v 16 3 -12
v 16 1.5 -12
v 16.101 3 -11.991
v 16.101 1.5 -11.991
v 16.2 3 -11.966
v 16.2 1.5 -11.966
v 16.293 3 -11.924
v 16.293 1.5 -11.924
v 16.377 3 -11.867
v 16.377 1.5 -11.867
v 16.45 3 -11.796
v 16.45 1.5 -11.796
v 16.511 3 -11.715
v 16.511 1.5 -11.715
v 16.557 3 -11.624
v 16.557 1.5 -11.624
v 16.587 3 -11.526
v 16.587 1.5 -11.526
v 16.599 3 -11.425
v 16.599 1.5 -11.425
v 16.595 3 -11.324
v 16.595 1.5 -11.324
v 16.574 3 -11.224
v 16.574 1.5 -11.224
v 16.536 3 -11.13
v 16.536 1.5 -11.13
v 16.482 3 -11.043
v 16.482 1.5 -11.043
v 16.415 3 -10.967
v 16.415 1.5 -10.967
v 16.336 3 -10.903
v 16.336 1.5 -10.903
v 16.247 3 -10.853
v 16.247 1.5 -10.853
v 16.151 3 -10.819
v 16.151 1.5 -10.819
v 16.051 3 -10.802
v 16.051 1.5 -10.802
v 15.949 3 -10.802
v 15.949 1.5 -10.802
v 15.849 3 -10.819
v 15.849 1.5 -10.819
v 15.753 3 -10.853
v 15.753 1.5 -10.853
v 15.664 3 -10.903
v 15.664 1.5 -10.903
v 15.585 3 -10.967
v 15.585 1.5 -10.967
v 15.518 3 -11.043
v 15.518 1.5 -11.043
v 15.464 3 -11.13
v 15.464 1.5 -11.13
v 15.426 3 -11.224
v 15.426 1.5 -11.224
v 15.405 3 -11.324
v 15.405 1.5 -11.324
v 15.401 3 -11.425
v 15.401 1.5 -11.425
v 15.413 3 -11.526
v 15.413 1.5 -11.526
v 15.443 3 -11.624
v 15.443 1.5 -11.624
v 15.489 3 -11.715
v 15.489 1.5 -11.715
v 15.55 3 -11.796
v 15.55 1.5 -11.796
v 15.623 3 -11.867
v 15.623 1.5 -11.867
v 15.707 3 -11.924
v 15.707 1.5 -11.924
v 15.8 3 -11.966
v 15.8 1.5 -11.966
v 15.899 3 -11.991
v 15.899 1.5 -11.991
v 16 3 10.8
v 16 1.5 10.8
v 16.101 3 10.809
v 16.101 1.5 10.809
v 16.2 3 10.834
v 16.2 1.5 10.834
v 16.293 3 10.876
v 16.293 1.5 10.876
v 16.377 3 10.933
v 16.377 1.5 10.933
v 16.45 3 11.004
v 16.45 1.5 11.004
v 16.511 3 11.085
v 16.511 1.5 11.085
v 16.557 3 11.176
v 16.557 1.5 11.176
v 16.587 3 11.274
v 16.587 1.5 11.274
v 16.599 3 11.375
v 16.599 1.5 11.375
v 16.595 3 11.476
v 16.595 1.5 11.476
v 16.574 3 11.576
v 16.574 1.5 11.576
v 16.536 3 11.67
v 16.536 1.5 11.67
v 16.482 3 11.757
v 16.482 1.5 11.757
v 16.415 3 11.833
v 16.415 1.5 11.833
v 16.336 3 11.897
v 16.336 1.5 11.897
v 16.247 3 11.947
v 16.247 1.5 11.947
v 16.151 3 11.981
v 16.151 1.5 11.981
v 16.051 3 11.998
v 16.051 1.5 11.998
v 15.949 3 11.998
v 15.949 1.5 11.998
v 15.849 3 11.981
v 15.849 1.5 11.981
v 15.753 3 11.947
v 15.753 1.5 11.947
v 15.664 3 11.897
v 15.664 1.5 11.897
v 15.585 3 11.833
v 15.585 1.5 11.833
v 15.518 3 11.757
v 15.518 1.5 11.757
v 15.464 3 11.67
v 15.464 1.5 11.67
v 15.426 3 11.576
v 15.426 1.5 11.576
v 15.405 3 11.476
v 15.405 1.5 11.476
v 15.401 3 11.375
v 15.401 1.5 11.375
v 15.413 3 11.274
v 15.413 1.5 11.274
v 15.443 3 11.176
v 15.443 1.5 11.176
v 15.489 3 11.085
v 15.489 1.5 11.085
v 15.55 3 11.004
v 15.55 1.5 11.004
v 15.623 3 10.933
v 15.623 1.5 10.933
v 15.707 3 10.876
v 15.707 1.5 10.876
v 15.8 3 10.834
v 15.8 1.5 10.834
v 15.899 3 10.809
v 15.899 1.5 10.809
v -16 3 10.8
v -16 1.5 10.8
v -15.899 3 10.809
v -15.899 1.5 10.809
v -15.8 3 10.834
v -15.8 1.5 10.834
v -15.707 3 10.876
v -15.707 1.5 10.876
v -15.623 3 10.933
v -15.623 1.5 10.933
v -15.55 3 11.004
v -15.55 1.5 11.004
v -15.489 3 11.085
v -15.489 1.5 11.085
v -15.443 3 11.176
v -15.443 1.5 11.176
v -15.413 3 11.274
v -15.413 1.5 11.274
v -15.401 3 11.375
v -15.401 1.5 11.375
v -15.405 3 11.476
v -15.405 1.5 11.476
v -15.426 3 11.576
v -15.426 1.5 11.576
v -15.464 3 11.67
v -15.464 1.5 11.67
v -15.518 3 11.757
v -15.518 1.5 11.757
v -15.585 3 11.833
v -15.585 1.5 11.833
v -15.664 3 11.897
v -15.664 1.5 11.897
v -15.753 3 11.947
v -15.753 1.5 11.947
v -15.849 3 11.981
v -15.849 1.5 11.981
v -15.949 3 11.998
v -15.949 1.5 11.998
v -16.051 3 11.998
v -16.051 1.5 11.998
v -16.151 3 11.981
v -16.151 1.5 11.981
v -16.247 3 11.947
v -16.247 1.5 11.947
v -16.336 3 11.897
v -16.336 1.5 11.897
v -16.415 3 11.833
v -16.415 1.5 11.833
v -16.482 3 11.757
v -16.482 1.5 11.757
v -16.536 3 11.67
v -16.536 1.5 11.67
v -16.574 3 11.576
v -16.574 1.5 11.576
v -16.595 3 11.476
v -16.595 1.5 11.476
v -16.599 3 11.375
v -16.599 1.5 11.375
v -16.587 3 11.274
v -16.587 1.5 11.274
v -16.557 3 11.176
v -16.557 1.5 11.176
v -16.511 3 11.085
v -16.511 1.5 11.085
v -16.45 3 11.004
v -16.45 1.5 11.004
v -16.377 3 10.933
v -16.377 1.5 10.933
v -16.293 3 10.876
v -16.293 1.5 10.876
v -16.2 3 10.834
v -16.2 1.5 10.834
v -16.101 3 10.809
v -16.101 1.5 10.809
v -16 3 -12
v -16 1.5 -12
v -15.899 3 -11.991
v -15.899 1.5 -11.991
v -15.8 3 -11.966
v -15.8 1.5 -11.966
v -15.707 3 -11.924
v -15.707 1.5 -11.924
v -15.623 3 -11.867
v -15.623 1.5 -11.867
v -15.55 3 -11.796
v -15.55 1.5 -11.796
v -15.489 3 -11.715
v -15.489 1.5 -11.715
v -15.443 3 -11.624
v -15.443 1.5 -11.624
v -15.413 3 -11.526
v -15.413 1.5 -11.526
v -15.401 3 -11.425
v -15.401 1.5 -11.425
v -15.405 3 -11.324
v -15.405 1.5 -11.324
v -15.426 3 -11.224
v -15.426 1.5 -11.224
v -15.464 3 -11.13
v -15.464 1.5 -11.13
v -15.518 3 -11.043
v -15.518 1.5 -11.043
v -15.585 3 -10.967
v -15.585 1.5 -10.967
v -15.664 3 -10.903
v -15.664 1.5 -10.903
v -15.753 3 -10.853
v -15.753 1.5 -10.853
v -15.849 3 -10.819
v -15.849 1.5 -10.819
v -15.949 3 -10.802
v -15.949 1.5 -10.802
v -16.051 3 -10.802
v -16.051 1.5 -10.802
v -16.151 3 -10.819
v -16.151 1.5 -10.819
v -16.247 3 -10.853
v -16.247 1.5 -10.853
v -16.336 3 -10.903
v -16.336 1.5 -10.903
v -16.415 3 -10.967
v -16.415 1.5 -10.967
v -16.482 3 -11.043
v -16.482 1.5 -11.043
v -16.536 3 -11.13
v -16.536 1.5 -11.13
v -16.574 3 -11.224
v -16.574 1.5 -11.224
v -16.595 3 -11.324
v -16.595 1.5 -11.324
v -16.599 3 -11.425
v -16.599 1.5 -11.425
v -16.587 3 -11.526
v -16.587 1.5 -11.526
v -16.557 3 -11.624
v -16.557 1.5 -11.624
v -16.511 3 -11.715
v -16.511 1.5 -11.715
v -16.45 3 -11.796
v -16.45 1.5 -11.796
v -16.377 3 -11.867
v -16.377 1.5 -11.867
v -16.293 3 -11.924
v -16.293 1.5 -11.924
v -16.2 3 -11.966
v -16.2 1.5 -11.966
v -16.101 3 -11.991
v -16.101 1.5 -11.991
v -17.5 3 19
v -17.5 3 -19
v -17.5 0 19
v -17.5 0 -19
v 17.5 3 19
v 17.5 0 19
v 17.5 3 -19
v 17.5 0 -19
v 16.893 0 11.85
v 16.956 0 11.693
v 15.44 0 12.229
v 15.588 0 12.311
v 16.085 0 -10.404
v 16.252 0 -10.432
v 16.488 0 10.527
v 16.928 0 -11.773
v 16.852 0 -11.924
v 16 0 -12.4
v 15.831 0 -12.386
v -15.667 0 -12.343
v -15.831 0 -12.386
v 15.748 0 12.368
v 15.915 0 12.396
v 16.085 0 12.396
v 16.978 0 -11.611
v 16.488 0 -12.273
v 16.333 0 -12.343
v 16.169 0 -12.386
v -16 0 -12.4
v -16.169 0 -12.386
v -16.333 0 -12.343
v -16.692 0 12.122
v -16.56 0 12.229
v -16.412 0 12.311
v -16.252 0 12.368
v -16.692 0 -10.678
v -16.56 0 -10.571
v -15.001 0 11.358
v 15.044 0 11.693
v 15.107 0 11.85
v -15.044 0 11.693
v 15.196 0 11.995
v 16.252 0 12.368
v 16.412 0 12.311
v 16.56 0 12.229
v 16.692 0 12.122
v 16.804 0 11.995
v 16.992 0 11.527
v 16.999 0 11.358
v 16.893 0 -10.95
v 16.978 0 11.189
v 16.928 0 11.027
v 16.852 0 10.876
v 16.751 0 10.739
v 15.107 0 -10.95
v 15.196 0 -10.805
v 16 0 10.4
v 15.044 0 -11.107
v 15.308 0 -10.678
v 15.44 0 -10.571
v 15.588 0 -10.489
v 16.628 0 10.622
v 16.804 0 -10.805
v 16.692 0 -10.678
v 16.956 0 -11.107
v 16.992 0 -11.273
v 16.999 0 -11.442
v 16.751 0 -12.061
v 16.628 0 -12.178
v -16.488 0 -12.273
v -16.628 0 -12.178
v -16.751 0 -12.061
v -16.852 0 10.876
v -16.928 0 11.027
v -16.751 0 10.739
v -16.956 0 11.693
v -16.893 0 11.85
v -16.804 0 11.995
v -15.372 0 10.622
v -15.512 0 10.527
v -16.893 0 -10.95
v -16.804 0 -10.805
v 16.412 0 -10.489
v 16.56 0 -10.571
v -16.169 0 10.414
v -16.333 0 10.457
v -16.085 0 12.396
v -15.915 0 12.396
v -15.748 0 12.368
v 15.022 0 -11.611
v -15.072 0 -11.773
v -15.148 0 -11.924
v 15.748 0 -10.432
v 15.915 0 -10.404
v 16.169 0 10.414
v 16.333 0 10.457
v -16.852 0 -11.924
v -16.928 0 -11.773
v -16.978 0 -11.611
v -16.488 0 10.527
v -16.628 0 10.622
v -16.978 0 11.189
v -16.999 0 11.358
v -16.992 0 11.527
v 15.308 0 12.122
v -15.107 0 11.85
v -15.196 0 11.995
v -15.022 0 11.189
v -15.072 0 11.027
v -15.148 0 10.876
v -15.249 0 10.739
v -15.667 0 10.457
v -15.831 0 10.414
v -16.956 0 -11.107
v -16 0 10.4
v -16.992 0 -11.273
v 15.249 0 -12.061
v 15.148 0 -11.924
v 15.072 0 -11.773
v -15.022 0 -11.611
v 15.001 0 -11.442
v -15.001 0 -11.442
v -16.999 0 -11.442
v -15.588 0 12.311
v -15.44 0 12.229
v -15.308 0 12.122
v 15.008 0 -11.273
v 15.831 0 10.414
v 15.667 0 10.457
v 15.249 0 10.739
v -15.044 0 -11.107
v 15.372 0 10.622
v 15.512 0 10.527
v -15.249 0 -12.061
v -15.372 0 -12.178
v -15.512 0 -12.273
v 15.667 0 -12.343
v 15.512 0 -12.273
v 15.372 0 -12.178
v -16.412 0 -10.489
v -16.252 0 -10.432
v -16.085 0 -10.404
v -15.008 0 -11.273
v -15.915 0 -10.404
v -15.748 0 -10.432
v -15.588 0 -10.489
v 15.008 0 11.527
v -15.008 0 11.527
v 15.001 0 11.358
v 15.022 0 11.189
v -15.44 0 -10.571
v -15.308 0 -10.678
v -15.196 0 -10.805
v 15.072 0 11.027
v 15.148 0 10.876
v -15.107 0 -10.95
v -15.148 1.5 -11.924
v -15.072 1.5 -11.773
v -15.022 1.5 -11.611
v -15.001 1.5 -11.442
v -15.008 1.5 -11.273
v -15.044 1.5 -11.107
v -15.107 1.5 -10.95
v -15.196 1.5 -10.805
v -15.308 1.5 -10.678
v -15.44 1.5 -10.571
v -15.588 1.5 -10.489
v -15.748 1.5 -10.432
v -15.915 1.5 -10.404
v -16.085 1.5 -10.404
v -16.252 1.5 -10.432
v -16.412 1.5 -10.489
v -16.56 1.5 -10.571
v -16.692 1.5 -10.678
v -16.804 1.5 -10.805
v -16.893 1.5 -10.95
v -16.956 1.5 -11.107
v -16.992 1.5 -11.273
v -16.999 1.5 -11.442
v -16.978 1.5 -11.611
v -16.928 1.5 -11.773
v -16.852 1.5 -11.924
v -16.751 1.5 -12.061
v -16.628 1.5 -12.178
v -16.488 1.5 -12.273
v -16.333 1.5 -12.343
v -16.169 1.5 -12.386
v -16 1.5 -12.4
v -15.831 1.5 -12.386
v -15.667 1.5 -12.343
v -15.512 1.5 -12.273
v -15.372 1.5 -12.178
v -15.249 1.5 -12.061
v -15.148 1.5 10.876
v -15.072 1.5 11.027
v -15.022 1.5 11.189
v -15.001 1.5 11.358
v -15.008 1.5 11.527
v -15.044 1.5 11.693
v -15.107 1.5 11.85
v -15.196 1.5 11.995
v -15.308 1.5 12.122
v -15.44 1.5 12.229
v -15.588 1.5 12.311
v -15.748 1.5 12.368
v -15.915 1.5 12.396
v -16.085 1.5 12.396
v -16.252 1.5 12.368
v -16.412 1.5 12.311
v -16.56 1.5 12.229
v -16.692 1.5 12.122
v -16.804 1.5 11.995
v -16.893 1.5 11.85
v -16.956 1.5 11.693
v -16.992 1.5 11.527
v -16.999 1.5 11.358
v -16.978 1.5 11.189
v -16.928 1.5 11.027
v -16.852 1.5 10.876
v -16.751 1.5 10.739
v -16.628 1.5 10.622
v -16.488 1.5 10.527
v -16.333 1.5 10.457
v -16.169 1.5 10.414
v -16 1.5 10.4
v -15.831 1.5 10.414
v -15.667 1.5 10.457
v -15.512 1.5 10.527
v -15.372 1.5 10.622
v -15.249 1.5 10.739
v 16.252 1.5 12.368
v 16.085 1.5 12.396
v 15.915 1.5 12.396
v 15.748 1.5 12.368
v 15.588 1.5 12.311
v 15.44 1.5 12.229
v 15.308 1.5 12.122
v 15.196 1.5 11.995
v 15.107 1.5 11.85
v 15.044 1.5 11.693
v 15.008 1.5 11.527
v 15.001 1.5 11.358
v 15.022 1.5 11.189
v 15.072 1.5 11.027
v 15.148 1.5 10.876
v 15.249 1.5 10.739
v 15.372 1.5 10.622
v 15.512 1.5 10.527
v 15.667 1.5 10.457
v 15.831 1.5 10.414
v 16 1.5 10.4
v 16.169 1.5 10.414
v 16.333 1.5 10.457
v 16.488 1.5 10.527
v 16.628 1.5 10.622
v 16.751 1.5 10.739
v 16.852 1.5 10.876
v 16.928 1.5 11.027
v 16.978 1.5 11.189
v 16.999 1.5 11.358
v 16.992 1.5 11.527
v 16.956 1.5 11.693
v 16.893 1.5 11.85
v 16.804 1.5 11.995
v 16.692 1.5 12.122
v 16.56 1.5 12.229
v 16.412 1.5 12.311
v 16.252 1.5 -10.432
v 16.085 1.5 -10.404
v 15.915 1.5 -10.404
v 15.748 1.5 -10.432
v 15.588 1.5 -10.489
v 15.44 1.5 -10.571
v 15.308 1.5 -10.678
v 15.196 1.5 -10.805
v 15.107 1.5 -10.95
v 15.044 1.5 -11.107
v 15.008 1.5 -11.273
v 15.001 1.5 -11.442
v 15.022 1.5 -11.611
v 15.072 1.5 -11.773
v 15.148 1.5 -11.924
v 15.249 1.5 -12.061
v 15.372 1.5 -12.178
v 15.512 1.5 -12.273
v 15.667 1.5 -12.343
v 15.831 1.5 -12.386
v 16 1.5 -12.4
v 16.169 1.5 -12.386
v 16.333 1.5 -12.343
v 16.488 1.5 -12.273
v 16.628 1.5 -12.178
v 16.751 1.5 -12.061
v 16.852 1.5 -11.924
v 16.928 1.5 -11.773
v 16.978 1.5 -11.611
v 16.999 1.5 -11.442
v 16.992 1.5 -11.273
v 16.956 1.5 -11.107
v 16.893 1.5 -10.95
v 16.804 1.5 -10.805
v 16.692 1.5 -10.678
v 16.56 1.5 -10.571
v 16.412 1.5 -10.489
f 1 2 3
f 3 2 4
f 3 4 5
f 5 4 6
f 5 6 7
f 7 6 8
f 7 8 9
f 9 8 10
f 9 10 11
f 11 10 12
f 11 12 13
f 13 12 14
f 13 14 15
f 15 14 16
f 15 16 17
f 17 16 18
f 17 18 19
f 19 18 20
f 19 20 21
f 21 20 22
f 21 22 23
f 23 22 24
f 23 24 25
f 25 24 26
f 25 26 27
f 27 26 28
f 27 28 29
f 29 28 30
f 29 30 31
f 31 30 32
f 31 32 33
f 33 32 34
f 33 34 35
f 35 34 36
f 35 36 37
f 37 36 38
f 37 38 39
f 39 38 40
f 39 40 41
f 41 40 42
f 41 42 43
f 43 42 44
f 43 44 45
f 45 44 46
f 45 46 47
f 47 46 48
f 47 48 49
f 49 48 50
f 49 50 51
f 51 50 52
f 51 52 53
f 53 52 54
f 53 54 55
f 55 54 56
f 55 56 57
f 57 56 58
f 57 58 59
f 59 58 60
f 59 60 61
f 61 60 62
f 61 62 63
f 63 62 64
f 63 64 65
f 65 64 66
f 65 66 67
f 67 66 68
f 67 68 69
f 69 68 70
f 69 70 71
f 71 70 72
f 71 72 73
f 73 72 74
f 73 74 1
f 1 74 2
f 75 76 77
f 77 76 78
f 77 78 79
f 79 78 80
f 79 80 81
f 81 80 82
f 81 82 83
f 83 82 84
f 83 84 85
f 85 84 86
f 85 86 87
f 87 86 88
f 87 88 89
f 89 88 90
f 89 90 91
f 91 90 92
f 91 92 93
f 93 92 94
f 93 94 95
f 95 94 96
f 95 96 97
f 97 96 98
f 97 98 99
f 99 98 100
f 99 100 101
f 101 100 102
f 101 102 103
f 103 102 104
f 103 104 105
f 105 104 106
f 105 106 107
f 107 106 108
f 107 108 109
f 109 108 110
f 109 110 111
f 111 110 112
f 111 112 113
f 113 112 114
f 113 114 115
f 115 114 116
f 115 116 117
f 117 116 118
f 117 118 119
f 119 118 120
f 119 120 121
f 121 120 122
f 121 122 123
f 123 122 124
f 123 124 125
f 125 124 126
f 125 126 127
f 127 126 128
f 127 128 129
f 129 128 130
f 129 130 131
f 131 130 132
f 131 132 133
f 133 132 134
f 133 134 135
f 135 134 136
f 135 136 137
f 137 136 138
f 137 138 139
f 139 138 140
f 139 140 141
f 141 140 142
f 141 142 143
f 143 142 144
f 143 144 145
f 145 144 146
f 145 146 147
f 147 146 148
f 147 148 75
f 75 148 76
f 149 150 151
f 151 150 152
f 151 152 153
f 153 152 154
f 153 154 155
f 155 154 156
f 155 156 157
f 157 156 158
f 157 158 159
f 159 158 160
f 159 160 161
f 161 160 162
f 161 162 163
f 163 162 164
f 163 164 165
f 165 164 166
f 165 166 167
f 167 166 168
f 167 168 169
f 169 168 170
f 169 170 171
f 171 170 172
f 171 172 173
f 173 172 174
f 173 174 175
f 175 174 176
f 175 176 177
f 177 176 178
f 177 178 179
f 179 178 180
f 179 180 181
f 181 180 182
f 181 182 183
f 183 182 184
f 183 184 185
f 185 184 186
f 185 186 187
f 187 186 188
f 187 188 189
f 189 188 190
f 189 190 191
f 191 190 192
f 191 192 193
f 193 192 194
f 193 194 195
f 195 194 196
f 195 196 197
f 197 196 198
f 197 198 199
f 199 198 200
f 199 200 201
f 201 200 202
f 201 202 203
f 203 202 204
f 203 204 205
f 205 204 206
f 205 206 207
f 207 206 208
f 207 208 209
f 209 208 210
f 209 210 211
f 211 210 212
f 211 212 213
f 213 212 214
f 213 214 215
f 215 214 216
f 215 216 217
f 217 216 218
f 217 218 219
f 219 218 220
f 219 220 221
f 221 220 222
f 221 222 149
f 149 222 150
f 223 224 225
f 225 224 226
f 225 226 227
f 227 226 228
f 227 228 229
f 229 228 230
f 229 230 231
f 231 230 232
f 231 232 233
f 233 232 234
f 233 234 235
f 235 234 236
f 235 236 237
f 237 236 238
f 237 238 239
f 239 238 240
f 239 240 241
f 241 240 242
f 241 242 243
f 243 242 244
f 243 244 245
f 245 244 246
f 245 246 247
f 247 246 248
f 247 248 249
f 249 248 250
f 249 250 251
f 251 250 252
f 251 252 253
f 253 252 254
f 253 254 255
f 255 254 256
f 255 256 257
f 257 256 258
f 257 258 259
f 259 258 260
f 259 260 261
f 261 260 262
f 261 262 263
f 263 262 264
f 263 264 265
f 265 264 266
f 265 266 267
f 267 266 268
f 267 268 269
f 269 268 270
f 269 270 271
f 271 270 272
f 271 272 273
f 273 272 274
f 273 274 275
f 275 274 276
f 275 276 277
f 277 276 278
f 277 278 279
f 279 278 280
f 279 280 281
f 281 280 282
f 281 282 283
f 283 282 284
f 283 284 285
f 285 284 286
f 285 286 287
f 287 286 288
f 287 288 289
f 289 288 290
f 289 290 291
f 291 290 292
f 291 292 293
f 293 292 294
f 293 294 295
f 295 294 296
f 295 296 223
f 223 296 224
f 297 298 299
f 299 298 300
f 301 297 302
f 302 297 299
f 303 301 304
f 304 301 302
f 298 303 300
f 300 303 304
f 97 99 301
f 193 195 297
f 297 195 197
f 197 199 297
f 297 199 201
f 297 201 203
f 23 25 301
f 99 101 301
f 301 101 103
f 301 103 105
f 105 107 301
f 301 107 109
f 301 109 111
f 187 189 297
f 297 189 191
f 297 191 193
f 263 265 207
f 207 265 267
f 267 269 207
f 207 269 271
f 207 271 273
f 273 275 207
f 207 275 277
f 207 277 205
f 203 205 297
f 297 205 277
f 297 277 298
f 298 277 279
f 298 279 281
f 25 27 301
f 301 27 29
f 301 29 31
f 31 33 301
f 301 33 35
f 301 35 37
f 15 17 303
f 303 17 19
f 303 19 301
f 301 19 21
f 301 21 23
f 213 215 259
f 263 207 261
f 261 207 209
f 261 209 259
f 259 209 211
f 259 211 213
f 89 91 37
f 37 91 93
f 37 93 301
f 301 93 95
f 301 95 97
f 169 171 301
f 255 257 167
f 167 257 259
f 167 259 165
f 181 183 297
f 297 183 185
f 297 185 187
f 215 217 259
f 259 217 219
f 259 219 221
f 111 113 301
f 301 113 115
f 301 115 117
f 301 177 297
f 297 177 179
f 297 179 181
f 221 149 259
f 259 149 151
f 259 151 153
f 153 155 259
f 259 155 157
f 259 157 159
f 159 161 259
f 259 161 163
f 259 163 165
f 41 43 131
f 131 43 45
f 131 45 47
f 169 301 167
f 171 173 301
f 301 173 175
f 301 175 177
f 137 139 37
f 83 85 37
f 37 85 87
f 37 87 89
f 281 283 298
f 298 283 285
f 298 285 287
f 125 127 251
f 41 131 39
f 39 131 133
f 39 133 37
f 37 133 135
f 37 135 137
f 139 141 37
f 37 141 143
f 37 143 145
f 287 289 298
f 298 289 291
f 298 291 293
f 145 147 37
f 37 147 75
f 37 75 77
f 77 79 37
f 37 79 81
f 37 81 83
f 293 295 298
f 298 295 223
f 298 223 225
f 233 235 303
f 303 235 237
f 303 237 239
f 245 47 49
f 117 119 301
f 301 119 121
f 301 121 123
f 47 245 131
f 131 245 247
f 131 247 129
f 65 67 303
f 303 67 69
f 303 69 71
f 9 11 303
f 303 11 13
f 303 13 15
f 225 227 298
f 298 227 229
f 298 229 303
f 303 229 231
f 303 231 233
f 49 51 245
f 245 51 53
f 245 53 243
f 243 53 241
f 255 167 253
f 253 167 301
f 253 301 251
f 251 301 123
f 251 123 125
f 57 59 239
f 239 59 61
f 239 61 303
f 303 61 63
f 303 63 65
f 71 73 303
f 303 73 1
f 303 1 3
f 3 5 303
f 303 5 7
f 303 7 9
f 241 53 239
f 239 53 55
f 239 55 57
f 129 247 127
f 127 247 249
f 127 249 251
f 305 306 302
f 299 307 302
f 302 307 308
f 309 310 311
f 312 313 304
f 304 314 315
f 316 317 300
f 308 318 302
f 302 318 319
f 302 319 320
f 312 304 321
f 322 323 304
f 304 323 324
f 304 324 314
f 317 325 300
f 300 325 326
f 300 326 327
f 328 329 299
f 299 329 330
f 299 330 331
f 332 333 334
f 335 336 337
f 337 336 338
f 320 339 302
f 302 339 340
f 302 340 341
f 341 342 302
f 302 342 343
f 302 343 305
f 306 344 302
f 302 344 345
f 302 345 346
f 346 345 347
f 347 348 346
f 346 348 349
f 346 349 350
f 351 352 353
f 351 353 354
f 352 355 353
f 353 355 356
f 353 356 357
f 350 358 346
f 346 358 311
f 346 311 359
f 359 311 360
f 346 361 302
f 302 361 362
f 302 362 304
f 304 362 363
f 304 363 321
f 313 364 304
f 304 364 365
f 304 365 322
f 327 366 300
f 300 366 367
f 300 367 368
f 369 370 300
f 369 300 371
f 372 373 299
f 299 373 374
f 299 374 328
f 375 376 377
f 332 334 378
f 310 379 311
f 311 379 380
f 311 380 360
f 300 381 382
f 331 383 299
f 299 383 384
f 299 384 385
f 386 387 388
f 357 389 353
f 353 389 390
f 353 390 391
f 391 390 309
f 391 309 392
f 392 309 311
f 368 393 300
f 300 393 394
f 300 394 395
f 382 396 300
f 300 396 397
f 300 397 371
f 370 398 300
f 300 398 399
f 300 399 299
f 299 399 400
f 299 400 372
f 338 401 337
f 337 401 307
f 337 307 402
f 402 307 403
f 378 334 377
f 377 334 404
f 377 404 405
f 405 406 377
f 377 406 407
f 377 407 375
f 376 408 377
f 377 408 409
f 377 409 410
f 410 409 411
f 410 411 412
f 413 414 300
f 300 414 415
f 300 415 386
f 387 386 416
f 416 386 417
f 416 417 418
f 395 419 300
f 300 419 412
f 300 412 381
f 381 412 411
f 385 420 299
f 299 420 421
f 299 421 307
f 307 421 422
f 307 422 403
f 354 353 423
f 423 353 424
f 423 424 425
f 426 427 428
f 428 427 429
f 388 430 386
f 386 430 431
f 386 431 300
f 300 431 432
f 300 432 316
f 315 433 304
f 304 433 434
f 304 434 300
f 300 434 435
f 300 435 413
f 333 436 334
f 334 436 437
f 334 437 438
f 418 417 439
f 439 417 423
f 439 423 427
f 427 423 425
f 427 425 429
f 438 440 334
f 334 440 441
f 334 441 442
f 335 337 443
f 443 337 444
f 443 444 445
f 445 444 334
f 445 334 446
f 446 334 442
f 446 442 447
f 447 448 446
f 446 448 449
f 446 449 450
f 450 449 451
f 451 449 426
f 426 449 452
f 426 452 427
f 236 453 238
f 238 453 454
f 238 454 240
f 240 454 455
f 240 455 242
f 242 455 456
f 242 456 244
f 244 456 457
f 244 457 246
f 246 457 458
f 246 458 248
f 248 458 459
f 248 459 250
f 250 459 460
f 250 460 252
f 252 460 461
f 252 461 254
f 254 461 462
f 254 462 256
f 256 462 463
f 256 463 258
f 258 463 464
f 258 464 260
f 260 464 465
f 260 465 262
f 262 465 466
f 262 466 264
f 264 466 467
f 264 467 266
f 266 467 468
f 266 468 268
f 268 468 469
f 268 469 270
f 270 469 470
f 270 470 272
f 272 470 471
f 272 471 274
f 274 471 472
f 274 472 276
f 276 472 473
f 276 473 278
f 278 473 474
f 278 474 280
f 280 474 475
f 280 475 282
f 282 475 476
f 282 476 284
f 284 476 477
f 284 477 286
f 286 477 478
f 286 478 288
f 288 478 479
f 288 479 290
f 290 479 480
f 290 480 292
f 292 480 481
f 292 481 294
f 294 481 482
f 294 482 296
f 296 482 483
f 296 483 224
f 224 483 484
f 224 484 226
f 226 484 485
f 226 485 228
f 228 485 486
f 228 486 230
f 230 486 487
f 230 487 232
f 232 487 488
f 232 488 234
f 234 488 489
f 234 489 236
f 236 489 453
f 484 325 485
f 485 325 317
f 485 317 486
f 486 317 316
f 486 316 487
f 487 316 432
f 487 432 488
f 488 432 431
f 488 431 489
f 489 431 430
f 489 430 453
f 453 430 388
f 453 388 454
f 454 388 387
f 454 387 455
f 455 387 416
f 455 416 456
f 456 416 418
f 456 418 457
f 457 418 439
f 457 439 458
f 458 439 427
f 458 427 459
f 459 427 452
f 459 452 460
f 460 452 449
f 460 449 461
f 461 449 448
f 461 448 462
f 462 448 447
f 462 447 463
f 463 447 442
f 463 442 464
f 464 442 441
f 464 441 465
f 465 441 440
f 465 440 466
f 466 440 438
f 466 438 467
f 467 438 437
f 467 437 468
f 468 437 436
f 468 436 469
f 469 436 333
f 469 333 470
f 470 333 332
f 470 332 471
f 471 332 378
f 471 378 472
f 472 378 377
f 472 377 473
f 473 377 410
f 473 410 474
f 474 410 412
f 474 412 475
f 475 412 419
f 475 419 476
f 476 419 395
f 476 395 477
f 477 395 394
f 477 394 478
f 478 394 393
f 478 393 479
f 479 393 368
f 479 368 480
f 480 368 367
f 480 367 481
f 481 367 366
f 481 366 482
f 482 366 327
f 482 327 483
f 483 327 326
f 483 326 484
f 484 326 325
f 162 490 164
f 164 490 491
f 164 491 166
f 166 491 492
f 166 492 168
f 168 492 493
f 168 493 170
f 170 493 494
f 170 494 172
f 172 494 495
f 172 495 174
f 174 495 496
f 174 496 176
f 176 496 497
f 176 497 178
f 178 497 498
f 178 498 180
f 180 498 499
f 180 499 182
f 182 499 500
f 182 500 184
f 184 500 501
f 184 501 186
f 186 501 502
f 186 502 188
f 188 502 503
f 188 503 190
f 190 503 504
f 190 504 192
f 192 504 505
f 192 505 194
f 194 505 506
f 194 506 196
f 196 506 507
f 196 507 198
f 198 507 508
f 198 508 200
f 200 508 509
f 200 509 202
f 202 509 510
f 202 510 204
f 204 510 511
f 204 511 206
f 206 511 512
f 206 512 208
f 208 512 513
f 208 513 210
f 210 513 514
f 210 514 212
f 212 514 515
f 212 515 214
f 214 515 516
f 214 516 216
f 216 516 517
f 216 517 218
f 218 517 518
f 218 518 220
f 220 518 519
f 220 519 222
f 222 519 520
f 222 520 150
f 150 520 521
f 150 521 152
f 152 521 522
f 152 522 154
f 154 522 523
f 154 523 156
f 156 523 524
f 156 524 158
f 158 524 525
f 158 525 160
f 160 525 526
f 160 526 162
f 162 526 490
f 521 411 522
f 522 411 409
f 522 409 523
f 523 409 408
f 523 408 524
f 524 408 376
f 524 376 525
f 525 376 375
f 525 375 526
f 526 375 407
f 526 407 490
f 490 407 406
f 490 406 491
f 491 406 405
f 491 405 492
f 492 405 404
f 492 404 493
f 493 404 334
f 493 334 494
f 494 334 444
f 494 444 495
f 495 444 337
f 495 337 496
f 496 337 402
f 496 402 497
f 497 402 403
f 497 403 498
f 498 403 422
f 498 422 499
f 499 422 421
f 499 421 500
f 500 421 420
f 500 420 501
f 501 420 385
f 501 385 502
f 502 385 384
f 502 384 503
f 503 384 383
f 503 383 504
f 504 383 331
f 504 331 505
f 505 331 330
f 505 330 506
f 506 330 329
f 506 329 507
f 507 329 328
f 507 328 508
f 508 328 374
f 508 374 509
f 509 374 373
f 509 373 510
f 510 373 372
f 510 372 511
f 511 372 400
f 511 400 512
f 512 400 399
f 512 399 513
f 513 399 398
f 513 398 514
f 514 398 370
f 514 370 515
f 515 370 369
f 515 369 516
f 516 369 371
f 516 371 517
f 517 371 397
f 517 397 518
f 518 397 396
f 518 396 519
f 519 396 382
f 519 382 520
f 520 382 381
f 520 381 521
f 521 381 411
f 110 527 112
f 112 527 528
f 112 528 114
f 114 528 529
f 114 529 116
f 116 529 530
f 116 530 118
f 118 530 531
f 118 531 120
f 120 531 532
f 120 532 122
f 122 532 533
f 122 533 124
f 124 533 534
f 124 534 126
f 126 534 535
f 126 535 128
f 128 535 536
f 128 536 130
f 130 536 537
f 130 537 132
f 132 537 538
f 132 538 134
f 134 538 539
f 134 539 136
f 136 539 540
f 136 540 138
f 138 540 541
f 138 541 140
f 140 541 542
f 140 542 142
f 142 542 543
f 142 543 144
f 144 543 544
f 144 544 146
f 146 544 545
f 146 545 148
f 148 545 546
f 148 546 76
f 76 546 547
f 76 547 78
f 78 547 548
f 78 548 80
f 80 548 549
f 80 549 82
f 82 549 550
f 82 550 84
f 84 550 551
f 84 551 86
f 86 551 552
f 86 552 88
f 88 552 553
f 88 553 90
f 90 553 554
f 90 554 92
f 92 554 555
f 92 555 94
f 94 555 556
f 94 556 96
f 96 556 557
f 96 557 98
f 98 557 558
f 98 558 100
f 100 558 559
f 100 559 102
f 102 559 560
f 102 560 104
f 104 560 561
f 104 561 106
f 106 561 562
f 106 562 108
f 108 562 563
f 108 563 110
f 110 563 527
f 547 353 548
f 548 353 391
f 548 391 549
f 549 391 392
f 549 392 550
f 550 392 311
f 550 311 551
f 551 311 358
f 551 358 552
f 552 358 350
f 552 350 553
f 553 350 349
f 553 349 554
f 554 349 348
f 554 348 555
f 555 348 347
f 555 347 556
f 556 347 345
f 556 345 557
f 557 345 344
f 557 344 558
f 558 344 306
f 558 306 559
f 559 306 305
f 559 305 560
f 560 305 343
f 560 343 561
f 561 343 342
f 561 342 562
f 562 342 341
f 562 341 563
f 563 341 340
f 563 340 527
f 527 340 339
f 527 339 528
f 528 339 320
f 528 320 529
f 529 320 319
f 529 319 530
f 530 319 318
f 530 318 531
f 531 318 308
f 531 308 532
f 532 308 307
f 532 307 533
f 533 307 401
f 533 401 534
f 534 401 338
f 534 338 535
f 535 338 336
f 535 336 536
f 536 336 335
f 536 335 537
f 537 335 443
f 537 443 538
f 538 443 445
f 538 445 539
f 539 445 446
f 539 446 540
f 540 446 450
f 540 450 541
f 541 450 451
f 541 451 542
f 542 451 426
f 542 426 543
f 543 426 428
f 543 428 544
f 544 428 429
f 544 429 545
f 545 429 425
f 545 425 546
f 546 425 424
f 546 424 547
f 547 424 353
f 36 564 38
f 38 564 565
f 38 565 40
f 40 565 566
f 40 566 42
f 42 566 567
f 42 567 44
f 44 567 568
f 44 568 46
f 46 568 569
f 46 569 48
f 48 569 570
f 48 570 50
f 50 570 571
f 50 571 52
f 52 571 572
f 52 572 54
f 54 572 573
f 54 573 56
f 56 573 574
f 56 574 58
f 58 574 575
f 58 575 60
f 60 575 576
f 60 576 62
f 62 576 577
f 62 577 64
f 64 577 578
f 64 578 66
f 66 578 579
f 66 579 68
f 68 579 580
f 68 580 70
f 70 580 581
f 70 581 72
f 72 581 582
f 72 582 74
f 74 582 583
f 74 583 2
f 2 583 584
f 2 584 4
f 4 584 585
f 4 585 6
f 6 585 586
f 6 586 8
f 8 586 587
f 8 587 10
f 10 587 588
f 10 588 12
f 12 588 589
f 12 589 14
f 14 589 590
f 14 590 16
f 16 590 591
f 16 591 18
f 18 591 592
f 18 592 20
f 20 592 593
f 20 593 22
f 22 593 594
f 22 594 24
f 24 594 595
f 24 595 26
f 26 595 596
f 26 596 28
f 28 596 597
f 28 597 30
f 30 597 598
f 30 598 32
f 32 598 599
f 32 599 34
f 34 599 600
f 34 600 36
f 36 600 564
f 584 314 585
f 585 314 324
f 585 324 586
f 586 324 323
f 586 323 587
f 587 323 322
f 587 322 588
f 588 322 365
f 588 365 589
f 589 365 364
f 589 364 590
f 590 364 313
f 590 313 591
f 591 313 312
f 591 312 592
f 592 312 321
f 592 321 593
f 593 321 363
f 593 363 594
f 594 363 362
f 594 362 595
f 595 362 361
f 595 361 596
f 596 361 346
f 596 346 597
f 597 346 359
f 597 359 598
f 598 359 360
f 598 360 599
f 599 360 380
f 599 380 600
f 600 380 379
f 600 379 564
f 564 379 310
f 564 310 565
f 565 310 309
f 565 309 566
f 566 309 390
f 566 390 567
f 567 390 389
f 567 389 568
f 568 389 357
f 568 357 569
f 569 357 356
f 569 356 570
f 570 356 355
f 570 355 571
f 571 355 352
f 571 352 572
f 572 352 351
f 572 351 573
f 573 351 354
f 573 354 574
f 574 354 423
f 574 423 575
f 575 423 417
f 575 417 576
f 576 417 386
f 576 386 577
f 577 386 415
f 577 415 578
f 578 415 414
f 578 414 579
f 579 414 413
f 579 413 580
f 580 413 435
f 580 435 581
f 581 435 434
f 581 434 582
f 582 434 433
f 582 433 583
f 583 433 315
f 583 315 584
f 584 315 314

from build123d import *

# Parameters (mm, degrees)
SKETCH_1_W          = 35
SKETCH_1_H          = 38
EXTRUDE_1_DEPTH     = 3
SKETCH_2_R          = 0.6
CUT_EXTRUDE_1_DEPTH = 27.004807248
SKETCH_2_3_R        = 1
CUT_EXTRUDE_2_DEPTH = 1.5


with BuildPart() as part:
    # 草图1 → 凸台-拉伸1 (new body)
    with BuildSketch(Plane(origin=(0, 0, 0), x_dir=(1, 0, 0), z_dir=(0, 1, 0))):
        Rectangle(SKETCH_1_W, SKETCH_1_H)
    extrude(amount=EXTRUDE_1_DEPTH)

    # 草图2 → 切除-拉伸1 (cut, through all)
    with BuildSketch(Plane.XZ):
        with Locations((16, -11.4)):
            Circle(SKETCH_2_R)
        with Locations((16, 11.4)):
            Circle(SKETCH_2_R)
        with Locations((-16, 11.4)):
            Circle(SKETCH_2_R)
        with Locations((-16, -11.4)):
            Circle(SKETCH_2_R)
    extrude(amount=-CUT_EXTRUDE_1_DEPTH, mode=Mode.SUBTRACT)

    # 草图2<3> → 切除-拉伸2 (cut)
    with BuildSketch(Plane.XZ):
        with Locations((16, -11.4)):
            Circle(SKETCH_2_3_R)
        with Locations((16, 11.4)):
            Circle(SKETCH_2_3_R)
        with Locations((-16, 11.4)):
            Circle(SKETCH_2_3_R)
        with Locations((-16, -11.4)):
            Circle(SKETCH_2_3_R)
    extrude(amount=-CUT_EXTRUDE_2_DEPTH, mode=Mode.SUBTRACT)


solid = part.part
